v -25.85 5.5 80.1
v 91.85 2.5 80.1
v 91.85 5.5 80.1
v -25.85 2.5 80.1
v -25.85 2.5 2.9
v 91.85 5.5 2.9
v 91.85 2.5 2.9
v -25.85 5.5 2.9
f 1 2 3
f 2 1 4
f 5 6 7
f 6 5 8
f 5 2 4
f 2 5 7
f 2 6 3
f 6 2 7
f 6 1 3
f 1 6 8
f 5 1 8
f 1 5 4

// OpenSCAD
// file: D:/Projects/assembly-workshop/outputs/Screen_Pi_Hue_SCR5-H_2026-10-30/checks/geometry.scad
// SCR5-G; mm; FRONT view: X right, Z up, Y into rack. Glass/plate front Y=0.
// Measured values: work/screen-5in/Dimensions.md. Physical fit/strength UNKNOWN.
part="plate";
DROP=0.45; // coupon winner can be substituted here; all three pins use this DROP
LIP=0.8; LIP_ON=true;
LIP_EDGES=[true,true,false,false]; // left,right,bottom,top; Brian: side lips only, cosmetic
FRAME_STEP=1.5; // measured glass-edge inset to metal LCD frame, left/right only
SHIM=0; // moves rear frame seat and plate-boss mating face back
$fn=48;
GCX=33; GCZ=41.5; PW=252; PH=88.8; PT=4;
GW=120.7; GH=77.2; CLEAR=0.2; WW=GW+2*CLEAR; WH=GH+2*CLEAR;
SEAT=13.3+SHIM; FT=3;
SO=[56.45,34]; BTN_X=[45.5,35.5,25.5];
PCB_TOP=38; GAP=0.10; LEAF_T=0.8;
HOLE=[3.4,40.3,44.7];
BX=[GCX-68,GCX+68]; BZ=[10,72];
// DSI connector X extent is unmeasured: conservative assumed 8 mm inward from PCB edge.
DSI=[GCX-60.5,9.1,GCZ-38+30,8,5.25,21];
module xz(y,d){translate([0,y+d,0])rotate([90,0,0])linear_extrude(d)children();}
// rr/rack_slots copied from SCR5-F; same exact slot centres, outline shifted -0.05 Z to centre 44.4.
module rr(w,h,r){hull()for(x=[-w/2+r,w/2-r],z=[-h/2+r,h/2-r])translate([x,z])circle(r=r);}
module rack_slots(){for(x=[-118.2625,118.2625],z=[6.323,38.127,50.773,82.577])translate([x,z])hull()for(dx=[-1.5,1.5])translate([dx,0])circle(d=7);}
module cyl_y(x,y,z,d,h){translate([x,y,z])rotate([-90,0,0])cylinder(d=d,h=h);}
module window_cut(){
  xz(-0.02,4.04)translate([GCX,GCZ])square([WW,WH],center=true);
  // 0.3 x 45-degree chamfer, square corners, front only.
  translate([GCX,0.3,GCZ])rotate([90,0,0])
    linear_extrude(height=0.3,scale=[(WW+0.6)/WW,(WH+0.6)/WH])square([WW,WH],center=true);
}
module lips(){
  // Cosmetic side ledges only; rear frame/standoffs set depth and retain the screen.
  if(LIP_ON)for(i=[0:3])if(LIP_EDGES[i]){
    if(i<2)translate([GCX+(i==0?-WW/2:WW/2-LIP),2.5,GCZ-GH/2+4])cube([LIP,0.8,GH-8]);
    else translate([GCX-GW/2+4,2.5,GCZ+(i==2?-WH/2:WH/2-LIP)])cube([GW-8,0.8,LIP]);
  }
}
// Leaf/nub/bump geometry copied from SCR5-WP-A, translated to this glass centre.
module leaves(){for(x=BTN_X)translate([GCX+x-1.5,0,GCZ]){
  translate([0,0,PCB_TOP+GAP+0.9+0.1])cube([3,11.8,LEAF_T]);
  translate([0,10.2,PCB_TOP+GAP])cube([3,1.4,1.0+LEAF_T/2]);
  translate([0,10.4,PCB_TOP+GAP+1.0+LEAF_T])cube([3,1.0,0.9]);
}}
module plate(){difference(){union(){
  difference(){xz(0,PT)translate([0,PH/2])rr(PW,PH,2.5);window_cut();}
  for(x=BX,z=BZ)cyl_y(x,3.9,z,8,SEAT-3.9);
  leaves(); lips();
 }
 xz(-0.02,4.04)rack_slots();
 for(x=BTN_X)translate([GCX+x-HOLE[0]/2,-0.02,GCZ+HOLE[1]])cube([HOLE[0],SEAT+FT+0.04,HOLE[2]-HOLE[1]]);
 // Printed-in screw pilots (no heat-set OD assumption): nominal M2.5, fit UNKNOWN.
 for(x=BX,z=BZ)cyl_y(x,SEAT-6,z,2.1,6.02);
 // Rear engraving, 0.5 deep, left field.
 xz(3.5,0.52)translate([-75,40])mirror([1,0])text("SCR5-G",size=6,halign="center",font="Liberation Sans:style=Bold");
}}
module frame_blank(){
  // C-shaped perimeter; no material across the board centre / touch FPC.
  xz(SEAT,FT)translate([GCX,GCZ])difference(){square([132,76],center=true);square([116,60],center=true);}
  for(sx=[-1,1],sz=[-1,1])cyl_y(GCX+sx*SO[0],SEAT,GCZ+sz*SO[1],9,FT);
  for(x=BX,z=BZ)hull(){cyl_y(x,SEAT,z,8,FT);cyl_y(GCX+(x<GCX?-62:62),SEAT,z,8,FT);}
}
module dsi_keepout(){translate([DSI[0]-3,DSI[1]-3,DSI[2]-3])cube([DSI[3]+6,DSI[4]+6,DSI[5]+6]);}
module ribbon_route(){
  // Open left/up corridor 18 mm wide; extends past top of plate.
  translate([GCX-84,6.1,GCZ-11])cube([18,24,65]);
  translate([GCX-84,6.1,GCZ-11])cube([32,24,27]);
}
module frame(){difference(){frame_blank();dsi_keepout();ribbon_route();
 for(sx=[-1,1],sz=[-1,1])cyl_y(GCX+sx*SO[0],SEAT-0.02,GCZ+sz*SO[1],2.8,FT+0.04);
 for(x=BX,z=BZ)cyl_y(x,SEAT-0.02,z,2.8,FT+0.04);
}}
// Pin polygon/cap/notch/dot design copied unchanged from SCR5-WP-A.
module pin(d,dots){s=2*d+0.5;difference(){union(){
 translate([-1.5,0,0])rotate([90,0,90])linear_extrude(3)polygon([
 [-s-0.02,40.5],[10.2,40.5],[10.2,41.0],[11.5,41.0],[11.5+2*d,41.0-d],[15,41.0-d],[15,44.5],[-s-0.02,44.5]]);
 translate([-2.5,-s-1.5,39.6])cube([5,1.5,5.8]);
 }for(i=[0:dots-1])translate([(i-(dots-1)/2)*1.4,-s-1.5-0.01,43.5])rotate([-90,0,0])cylinder(d=0.9,h=0.4);}}
module placed_pin(i){translate([GCX+BTN_X[i],0,GCZ])pin(DROP,i+1);}
// Measured layers: cover glass 0.9 + second glass 1.6, metal frame 3.0,
// open gap 2.0, PCB 1.6. Metal frame inset ~1.5 at LEFT/RIGHT only.
// PCB centred under glass and full metal-frame top/bottom extent remain UNKNOWN.
module glass(){translate([GCX-GW/2,0,GCZ-GH/2])cube([GW,2.5,GH]);}
module lcd(){
  translate([GCX-GW/2+FRAME_STEP,2.5,GCZ-GH/2])cube([GW-2*FRAME_STEP,3.0,GH]);
}
module pcb(){translate([GCX-60.5,7.5,GCZ-38])cube([121,1.6,76]);}
module standoffs(){for(sx=[-1,1],sz=[-1,1])difference(){cyl_y(GCX+sx*SO[0],9.1,GCZ+sz*SO[1],5.5,4.2);cyl_y(GCX+sx*SO[0],9.08,GCZ+sz*SO[1],2.5,4.24);}}
module buttons(){for(x=BTN_X){
 translate([GCX+x-3.5,9.1,GCZ+38-3.4])cube([7,3.6,2.4]);
 translate([GCX+x-1.5,9.1,GCZ+37])cube([3,3.6,1]);
}}
module dsi(){translate([DSI[0],DSI[1],DSI[2]])cube([DSI[3],DSI[4],DSI[5]]);}
module touch(){translate([GCX-10,9.1,GCZ-5])cube([20,2,10]);} // lateral extent unmeasured
module dummy(){glass();lcd();pcb();standoffs();buttons();dsi();touch();}
module assembly(){color("gray")plate();color("orange")frame();for(i=[0:2])color("cyan")placed_pin(i);color([0.2,0.3,0.4,0.4])dummy();}
// main file
include <D:/Projects/assembly-workshop/outputs/Screen_Pi_Hue_SCR5-H_2026-10-30/checks/geometry.scad>
lcd();
